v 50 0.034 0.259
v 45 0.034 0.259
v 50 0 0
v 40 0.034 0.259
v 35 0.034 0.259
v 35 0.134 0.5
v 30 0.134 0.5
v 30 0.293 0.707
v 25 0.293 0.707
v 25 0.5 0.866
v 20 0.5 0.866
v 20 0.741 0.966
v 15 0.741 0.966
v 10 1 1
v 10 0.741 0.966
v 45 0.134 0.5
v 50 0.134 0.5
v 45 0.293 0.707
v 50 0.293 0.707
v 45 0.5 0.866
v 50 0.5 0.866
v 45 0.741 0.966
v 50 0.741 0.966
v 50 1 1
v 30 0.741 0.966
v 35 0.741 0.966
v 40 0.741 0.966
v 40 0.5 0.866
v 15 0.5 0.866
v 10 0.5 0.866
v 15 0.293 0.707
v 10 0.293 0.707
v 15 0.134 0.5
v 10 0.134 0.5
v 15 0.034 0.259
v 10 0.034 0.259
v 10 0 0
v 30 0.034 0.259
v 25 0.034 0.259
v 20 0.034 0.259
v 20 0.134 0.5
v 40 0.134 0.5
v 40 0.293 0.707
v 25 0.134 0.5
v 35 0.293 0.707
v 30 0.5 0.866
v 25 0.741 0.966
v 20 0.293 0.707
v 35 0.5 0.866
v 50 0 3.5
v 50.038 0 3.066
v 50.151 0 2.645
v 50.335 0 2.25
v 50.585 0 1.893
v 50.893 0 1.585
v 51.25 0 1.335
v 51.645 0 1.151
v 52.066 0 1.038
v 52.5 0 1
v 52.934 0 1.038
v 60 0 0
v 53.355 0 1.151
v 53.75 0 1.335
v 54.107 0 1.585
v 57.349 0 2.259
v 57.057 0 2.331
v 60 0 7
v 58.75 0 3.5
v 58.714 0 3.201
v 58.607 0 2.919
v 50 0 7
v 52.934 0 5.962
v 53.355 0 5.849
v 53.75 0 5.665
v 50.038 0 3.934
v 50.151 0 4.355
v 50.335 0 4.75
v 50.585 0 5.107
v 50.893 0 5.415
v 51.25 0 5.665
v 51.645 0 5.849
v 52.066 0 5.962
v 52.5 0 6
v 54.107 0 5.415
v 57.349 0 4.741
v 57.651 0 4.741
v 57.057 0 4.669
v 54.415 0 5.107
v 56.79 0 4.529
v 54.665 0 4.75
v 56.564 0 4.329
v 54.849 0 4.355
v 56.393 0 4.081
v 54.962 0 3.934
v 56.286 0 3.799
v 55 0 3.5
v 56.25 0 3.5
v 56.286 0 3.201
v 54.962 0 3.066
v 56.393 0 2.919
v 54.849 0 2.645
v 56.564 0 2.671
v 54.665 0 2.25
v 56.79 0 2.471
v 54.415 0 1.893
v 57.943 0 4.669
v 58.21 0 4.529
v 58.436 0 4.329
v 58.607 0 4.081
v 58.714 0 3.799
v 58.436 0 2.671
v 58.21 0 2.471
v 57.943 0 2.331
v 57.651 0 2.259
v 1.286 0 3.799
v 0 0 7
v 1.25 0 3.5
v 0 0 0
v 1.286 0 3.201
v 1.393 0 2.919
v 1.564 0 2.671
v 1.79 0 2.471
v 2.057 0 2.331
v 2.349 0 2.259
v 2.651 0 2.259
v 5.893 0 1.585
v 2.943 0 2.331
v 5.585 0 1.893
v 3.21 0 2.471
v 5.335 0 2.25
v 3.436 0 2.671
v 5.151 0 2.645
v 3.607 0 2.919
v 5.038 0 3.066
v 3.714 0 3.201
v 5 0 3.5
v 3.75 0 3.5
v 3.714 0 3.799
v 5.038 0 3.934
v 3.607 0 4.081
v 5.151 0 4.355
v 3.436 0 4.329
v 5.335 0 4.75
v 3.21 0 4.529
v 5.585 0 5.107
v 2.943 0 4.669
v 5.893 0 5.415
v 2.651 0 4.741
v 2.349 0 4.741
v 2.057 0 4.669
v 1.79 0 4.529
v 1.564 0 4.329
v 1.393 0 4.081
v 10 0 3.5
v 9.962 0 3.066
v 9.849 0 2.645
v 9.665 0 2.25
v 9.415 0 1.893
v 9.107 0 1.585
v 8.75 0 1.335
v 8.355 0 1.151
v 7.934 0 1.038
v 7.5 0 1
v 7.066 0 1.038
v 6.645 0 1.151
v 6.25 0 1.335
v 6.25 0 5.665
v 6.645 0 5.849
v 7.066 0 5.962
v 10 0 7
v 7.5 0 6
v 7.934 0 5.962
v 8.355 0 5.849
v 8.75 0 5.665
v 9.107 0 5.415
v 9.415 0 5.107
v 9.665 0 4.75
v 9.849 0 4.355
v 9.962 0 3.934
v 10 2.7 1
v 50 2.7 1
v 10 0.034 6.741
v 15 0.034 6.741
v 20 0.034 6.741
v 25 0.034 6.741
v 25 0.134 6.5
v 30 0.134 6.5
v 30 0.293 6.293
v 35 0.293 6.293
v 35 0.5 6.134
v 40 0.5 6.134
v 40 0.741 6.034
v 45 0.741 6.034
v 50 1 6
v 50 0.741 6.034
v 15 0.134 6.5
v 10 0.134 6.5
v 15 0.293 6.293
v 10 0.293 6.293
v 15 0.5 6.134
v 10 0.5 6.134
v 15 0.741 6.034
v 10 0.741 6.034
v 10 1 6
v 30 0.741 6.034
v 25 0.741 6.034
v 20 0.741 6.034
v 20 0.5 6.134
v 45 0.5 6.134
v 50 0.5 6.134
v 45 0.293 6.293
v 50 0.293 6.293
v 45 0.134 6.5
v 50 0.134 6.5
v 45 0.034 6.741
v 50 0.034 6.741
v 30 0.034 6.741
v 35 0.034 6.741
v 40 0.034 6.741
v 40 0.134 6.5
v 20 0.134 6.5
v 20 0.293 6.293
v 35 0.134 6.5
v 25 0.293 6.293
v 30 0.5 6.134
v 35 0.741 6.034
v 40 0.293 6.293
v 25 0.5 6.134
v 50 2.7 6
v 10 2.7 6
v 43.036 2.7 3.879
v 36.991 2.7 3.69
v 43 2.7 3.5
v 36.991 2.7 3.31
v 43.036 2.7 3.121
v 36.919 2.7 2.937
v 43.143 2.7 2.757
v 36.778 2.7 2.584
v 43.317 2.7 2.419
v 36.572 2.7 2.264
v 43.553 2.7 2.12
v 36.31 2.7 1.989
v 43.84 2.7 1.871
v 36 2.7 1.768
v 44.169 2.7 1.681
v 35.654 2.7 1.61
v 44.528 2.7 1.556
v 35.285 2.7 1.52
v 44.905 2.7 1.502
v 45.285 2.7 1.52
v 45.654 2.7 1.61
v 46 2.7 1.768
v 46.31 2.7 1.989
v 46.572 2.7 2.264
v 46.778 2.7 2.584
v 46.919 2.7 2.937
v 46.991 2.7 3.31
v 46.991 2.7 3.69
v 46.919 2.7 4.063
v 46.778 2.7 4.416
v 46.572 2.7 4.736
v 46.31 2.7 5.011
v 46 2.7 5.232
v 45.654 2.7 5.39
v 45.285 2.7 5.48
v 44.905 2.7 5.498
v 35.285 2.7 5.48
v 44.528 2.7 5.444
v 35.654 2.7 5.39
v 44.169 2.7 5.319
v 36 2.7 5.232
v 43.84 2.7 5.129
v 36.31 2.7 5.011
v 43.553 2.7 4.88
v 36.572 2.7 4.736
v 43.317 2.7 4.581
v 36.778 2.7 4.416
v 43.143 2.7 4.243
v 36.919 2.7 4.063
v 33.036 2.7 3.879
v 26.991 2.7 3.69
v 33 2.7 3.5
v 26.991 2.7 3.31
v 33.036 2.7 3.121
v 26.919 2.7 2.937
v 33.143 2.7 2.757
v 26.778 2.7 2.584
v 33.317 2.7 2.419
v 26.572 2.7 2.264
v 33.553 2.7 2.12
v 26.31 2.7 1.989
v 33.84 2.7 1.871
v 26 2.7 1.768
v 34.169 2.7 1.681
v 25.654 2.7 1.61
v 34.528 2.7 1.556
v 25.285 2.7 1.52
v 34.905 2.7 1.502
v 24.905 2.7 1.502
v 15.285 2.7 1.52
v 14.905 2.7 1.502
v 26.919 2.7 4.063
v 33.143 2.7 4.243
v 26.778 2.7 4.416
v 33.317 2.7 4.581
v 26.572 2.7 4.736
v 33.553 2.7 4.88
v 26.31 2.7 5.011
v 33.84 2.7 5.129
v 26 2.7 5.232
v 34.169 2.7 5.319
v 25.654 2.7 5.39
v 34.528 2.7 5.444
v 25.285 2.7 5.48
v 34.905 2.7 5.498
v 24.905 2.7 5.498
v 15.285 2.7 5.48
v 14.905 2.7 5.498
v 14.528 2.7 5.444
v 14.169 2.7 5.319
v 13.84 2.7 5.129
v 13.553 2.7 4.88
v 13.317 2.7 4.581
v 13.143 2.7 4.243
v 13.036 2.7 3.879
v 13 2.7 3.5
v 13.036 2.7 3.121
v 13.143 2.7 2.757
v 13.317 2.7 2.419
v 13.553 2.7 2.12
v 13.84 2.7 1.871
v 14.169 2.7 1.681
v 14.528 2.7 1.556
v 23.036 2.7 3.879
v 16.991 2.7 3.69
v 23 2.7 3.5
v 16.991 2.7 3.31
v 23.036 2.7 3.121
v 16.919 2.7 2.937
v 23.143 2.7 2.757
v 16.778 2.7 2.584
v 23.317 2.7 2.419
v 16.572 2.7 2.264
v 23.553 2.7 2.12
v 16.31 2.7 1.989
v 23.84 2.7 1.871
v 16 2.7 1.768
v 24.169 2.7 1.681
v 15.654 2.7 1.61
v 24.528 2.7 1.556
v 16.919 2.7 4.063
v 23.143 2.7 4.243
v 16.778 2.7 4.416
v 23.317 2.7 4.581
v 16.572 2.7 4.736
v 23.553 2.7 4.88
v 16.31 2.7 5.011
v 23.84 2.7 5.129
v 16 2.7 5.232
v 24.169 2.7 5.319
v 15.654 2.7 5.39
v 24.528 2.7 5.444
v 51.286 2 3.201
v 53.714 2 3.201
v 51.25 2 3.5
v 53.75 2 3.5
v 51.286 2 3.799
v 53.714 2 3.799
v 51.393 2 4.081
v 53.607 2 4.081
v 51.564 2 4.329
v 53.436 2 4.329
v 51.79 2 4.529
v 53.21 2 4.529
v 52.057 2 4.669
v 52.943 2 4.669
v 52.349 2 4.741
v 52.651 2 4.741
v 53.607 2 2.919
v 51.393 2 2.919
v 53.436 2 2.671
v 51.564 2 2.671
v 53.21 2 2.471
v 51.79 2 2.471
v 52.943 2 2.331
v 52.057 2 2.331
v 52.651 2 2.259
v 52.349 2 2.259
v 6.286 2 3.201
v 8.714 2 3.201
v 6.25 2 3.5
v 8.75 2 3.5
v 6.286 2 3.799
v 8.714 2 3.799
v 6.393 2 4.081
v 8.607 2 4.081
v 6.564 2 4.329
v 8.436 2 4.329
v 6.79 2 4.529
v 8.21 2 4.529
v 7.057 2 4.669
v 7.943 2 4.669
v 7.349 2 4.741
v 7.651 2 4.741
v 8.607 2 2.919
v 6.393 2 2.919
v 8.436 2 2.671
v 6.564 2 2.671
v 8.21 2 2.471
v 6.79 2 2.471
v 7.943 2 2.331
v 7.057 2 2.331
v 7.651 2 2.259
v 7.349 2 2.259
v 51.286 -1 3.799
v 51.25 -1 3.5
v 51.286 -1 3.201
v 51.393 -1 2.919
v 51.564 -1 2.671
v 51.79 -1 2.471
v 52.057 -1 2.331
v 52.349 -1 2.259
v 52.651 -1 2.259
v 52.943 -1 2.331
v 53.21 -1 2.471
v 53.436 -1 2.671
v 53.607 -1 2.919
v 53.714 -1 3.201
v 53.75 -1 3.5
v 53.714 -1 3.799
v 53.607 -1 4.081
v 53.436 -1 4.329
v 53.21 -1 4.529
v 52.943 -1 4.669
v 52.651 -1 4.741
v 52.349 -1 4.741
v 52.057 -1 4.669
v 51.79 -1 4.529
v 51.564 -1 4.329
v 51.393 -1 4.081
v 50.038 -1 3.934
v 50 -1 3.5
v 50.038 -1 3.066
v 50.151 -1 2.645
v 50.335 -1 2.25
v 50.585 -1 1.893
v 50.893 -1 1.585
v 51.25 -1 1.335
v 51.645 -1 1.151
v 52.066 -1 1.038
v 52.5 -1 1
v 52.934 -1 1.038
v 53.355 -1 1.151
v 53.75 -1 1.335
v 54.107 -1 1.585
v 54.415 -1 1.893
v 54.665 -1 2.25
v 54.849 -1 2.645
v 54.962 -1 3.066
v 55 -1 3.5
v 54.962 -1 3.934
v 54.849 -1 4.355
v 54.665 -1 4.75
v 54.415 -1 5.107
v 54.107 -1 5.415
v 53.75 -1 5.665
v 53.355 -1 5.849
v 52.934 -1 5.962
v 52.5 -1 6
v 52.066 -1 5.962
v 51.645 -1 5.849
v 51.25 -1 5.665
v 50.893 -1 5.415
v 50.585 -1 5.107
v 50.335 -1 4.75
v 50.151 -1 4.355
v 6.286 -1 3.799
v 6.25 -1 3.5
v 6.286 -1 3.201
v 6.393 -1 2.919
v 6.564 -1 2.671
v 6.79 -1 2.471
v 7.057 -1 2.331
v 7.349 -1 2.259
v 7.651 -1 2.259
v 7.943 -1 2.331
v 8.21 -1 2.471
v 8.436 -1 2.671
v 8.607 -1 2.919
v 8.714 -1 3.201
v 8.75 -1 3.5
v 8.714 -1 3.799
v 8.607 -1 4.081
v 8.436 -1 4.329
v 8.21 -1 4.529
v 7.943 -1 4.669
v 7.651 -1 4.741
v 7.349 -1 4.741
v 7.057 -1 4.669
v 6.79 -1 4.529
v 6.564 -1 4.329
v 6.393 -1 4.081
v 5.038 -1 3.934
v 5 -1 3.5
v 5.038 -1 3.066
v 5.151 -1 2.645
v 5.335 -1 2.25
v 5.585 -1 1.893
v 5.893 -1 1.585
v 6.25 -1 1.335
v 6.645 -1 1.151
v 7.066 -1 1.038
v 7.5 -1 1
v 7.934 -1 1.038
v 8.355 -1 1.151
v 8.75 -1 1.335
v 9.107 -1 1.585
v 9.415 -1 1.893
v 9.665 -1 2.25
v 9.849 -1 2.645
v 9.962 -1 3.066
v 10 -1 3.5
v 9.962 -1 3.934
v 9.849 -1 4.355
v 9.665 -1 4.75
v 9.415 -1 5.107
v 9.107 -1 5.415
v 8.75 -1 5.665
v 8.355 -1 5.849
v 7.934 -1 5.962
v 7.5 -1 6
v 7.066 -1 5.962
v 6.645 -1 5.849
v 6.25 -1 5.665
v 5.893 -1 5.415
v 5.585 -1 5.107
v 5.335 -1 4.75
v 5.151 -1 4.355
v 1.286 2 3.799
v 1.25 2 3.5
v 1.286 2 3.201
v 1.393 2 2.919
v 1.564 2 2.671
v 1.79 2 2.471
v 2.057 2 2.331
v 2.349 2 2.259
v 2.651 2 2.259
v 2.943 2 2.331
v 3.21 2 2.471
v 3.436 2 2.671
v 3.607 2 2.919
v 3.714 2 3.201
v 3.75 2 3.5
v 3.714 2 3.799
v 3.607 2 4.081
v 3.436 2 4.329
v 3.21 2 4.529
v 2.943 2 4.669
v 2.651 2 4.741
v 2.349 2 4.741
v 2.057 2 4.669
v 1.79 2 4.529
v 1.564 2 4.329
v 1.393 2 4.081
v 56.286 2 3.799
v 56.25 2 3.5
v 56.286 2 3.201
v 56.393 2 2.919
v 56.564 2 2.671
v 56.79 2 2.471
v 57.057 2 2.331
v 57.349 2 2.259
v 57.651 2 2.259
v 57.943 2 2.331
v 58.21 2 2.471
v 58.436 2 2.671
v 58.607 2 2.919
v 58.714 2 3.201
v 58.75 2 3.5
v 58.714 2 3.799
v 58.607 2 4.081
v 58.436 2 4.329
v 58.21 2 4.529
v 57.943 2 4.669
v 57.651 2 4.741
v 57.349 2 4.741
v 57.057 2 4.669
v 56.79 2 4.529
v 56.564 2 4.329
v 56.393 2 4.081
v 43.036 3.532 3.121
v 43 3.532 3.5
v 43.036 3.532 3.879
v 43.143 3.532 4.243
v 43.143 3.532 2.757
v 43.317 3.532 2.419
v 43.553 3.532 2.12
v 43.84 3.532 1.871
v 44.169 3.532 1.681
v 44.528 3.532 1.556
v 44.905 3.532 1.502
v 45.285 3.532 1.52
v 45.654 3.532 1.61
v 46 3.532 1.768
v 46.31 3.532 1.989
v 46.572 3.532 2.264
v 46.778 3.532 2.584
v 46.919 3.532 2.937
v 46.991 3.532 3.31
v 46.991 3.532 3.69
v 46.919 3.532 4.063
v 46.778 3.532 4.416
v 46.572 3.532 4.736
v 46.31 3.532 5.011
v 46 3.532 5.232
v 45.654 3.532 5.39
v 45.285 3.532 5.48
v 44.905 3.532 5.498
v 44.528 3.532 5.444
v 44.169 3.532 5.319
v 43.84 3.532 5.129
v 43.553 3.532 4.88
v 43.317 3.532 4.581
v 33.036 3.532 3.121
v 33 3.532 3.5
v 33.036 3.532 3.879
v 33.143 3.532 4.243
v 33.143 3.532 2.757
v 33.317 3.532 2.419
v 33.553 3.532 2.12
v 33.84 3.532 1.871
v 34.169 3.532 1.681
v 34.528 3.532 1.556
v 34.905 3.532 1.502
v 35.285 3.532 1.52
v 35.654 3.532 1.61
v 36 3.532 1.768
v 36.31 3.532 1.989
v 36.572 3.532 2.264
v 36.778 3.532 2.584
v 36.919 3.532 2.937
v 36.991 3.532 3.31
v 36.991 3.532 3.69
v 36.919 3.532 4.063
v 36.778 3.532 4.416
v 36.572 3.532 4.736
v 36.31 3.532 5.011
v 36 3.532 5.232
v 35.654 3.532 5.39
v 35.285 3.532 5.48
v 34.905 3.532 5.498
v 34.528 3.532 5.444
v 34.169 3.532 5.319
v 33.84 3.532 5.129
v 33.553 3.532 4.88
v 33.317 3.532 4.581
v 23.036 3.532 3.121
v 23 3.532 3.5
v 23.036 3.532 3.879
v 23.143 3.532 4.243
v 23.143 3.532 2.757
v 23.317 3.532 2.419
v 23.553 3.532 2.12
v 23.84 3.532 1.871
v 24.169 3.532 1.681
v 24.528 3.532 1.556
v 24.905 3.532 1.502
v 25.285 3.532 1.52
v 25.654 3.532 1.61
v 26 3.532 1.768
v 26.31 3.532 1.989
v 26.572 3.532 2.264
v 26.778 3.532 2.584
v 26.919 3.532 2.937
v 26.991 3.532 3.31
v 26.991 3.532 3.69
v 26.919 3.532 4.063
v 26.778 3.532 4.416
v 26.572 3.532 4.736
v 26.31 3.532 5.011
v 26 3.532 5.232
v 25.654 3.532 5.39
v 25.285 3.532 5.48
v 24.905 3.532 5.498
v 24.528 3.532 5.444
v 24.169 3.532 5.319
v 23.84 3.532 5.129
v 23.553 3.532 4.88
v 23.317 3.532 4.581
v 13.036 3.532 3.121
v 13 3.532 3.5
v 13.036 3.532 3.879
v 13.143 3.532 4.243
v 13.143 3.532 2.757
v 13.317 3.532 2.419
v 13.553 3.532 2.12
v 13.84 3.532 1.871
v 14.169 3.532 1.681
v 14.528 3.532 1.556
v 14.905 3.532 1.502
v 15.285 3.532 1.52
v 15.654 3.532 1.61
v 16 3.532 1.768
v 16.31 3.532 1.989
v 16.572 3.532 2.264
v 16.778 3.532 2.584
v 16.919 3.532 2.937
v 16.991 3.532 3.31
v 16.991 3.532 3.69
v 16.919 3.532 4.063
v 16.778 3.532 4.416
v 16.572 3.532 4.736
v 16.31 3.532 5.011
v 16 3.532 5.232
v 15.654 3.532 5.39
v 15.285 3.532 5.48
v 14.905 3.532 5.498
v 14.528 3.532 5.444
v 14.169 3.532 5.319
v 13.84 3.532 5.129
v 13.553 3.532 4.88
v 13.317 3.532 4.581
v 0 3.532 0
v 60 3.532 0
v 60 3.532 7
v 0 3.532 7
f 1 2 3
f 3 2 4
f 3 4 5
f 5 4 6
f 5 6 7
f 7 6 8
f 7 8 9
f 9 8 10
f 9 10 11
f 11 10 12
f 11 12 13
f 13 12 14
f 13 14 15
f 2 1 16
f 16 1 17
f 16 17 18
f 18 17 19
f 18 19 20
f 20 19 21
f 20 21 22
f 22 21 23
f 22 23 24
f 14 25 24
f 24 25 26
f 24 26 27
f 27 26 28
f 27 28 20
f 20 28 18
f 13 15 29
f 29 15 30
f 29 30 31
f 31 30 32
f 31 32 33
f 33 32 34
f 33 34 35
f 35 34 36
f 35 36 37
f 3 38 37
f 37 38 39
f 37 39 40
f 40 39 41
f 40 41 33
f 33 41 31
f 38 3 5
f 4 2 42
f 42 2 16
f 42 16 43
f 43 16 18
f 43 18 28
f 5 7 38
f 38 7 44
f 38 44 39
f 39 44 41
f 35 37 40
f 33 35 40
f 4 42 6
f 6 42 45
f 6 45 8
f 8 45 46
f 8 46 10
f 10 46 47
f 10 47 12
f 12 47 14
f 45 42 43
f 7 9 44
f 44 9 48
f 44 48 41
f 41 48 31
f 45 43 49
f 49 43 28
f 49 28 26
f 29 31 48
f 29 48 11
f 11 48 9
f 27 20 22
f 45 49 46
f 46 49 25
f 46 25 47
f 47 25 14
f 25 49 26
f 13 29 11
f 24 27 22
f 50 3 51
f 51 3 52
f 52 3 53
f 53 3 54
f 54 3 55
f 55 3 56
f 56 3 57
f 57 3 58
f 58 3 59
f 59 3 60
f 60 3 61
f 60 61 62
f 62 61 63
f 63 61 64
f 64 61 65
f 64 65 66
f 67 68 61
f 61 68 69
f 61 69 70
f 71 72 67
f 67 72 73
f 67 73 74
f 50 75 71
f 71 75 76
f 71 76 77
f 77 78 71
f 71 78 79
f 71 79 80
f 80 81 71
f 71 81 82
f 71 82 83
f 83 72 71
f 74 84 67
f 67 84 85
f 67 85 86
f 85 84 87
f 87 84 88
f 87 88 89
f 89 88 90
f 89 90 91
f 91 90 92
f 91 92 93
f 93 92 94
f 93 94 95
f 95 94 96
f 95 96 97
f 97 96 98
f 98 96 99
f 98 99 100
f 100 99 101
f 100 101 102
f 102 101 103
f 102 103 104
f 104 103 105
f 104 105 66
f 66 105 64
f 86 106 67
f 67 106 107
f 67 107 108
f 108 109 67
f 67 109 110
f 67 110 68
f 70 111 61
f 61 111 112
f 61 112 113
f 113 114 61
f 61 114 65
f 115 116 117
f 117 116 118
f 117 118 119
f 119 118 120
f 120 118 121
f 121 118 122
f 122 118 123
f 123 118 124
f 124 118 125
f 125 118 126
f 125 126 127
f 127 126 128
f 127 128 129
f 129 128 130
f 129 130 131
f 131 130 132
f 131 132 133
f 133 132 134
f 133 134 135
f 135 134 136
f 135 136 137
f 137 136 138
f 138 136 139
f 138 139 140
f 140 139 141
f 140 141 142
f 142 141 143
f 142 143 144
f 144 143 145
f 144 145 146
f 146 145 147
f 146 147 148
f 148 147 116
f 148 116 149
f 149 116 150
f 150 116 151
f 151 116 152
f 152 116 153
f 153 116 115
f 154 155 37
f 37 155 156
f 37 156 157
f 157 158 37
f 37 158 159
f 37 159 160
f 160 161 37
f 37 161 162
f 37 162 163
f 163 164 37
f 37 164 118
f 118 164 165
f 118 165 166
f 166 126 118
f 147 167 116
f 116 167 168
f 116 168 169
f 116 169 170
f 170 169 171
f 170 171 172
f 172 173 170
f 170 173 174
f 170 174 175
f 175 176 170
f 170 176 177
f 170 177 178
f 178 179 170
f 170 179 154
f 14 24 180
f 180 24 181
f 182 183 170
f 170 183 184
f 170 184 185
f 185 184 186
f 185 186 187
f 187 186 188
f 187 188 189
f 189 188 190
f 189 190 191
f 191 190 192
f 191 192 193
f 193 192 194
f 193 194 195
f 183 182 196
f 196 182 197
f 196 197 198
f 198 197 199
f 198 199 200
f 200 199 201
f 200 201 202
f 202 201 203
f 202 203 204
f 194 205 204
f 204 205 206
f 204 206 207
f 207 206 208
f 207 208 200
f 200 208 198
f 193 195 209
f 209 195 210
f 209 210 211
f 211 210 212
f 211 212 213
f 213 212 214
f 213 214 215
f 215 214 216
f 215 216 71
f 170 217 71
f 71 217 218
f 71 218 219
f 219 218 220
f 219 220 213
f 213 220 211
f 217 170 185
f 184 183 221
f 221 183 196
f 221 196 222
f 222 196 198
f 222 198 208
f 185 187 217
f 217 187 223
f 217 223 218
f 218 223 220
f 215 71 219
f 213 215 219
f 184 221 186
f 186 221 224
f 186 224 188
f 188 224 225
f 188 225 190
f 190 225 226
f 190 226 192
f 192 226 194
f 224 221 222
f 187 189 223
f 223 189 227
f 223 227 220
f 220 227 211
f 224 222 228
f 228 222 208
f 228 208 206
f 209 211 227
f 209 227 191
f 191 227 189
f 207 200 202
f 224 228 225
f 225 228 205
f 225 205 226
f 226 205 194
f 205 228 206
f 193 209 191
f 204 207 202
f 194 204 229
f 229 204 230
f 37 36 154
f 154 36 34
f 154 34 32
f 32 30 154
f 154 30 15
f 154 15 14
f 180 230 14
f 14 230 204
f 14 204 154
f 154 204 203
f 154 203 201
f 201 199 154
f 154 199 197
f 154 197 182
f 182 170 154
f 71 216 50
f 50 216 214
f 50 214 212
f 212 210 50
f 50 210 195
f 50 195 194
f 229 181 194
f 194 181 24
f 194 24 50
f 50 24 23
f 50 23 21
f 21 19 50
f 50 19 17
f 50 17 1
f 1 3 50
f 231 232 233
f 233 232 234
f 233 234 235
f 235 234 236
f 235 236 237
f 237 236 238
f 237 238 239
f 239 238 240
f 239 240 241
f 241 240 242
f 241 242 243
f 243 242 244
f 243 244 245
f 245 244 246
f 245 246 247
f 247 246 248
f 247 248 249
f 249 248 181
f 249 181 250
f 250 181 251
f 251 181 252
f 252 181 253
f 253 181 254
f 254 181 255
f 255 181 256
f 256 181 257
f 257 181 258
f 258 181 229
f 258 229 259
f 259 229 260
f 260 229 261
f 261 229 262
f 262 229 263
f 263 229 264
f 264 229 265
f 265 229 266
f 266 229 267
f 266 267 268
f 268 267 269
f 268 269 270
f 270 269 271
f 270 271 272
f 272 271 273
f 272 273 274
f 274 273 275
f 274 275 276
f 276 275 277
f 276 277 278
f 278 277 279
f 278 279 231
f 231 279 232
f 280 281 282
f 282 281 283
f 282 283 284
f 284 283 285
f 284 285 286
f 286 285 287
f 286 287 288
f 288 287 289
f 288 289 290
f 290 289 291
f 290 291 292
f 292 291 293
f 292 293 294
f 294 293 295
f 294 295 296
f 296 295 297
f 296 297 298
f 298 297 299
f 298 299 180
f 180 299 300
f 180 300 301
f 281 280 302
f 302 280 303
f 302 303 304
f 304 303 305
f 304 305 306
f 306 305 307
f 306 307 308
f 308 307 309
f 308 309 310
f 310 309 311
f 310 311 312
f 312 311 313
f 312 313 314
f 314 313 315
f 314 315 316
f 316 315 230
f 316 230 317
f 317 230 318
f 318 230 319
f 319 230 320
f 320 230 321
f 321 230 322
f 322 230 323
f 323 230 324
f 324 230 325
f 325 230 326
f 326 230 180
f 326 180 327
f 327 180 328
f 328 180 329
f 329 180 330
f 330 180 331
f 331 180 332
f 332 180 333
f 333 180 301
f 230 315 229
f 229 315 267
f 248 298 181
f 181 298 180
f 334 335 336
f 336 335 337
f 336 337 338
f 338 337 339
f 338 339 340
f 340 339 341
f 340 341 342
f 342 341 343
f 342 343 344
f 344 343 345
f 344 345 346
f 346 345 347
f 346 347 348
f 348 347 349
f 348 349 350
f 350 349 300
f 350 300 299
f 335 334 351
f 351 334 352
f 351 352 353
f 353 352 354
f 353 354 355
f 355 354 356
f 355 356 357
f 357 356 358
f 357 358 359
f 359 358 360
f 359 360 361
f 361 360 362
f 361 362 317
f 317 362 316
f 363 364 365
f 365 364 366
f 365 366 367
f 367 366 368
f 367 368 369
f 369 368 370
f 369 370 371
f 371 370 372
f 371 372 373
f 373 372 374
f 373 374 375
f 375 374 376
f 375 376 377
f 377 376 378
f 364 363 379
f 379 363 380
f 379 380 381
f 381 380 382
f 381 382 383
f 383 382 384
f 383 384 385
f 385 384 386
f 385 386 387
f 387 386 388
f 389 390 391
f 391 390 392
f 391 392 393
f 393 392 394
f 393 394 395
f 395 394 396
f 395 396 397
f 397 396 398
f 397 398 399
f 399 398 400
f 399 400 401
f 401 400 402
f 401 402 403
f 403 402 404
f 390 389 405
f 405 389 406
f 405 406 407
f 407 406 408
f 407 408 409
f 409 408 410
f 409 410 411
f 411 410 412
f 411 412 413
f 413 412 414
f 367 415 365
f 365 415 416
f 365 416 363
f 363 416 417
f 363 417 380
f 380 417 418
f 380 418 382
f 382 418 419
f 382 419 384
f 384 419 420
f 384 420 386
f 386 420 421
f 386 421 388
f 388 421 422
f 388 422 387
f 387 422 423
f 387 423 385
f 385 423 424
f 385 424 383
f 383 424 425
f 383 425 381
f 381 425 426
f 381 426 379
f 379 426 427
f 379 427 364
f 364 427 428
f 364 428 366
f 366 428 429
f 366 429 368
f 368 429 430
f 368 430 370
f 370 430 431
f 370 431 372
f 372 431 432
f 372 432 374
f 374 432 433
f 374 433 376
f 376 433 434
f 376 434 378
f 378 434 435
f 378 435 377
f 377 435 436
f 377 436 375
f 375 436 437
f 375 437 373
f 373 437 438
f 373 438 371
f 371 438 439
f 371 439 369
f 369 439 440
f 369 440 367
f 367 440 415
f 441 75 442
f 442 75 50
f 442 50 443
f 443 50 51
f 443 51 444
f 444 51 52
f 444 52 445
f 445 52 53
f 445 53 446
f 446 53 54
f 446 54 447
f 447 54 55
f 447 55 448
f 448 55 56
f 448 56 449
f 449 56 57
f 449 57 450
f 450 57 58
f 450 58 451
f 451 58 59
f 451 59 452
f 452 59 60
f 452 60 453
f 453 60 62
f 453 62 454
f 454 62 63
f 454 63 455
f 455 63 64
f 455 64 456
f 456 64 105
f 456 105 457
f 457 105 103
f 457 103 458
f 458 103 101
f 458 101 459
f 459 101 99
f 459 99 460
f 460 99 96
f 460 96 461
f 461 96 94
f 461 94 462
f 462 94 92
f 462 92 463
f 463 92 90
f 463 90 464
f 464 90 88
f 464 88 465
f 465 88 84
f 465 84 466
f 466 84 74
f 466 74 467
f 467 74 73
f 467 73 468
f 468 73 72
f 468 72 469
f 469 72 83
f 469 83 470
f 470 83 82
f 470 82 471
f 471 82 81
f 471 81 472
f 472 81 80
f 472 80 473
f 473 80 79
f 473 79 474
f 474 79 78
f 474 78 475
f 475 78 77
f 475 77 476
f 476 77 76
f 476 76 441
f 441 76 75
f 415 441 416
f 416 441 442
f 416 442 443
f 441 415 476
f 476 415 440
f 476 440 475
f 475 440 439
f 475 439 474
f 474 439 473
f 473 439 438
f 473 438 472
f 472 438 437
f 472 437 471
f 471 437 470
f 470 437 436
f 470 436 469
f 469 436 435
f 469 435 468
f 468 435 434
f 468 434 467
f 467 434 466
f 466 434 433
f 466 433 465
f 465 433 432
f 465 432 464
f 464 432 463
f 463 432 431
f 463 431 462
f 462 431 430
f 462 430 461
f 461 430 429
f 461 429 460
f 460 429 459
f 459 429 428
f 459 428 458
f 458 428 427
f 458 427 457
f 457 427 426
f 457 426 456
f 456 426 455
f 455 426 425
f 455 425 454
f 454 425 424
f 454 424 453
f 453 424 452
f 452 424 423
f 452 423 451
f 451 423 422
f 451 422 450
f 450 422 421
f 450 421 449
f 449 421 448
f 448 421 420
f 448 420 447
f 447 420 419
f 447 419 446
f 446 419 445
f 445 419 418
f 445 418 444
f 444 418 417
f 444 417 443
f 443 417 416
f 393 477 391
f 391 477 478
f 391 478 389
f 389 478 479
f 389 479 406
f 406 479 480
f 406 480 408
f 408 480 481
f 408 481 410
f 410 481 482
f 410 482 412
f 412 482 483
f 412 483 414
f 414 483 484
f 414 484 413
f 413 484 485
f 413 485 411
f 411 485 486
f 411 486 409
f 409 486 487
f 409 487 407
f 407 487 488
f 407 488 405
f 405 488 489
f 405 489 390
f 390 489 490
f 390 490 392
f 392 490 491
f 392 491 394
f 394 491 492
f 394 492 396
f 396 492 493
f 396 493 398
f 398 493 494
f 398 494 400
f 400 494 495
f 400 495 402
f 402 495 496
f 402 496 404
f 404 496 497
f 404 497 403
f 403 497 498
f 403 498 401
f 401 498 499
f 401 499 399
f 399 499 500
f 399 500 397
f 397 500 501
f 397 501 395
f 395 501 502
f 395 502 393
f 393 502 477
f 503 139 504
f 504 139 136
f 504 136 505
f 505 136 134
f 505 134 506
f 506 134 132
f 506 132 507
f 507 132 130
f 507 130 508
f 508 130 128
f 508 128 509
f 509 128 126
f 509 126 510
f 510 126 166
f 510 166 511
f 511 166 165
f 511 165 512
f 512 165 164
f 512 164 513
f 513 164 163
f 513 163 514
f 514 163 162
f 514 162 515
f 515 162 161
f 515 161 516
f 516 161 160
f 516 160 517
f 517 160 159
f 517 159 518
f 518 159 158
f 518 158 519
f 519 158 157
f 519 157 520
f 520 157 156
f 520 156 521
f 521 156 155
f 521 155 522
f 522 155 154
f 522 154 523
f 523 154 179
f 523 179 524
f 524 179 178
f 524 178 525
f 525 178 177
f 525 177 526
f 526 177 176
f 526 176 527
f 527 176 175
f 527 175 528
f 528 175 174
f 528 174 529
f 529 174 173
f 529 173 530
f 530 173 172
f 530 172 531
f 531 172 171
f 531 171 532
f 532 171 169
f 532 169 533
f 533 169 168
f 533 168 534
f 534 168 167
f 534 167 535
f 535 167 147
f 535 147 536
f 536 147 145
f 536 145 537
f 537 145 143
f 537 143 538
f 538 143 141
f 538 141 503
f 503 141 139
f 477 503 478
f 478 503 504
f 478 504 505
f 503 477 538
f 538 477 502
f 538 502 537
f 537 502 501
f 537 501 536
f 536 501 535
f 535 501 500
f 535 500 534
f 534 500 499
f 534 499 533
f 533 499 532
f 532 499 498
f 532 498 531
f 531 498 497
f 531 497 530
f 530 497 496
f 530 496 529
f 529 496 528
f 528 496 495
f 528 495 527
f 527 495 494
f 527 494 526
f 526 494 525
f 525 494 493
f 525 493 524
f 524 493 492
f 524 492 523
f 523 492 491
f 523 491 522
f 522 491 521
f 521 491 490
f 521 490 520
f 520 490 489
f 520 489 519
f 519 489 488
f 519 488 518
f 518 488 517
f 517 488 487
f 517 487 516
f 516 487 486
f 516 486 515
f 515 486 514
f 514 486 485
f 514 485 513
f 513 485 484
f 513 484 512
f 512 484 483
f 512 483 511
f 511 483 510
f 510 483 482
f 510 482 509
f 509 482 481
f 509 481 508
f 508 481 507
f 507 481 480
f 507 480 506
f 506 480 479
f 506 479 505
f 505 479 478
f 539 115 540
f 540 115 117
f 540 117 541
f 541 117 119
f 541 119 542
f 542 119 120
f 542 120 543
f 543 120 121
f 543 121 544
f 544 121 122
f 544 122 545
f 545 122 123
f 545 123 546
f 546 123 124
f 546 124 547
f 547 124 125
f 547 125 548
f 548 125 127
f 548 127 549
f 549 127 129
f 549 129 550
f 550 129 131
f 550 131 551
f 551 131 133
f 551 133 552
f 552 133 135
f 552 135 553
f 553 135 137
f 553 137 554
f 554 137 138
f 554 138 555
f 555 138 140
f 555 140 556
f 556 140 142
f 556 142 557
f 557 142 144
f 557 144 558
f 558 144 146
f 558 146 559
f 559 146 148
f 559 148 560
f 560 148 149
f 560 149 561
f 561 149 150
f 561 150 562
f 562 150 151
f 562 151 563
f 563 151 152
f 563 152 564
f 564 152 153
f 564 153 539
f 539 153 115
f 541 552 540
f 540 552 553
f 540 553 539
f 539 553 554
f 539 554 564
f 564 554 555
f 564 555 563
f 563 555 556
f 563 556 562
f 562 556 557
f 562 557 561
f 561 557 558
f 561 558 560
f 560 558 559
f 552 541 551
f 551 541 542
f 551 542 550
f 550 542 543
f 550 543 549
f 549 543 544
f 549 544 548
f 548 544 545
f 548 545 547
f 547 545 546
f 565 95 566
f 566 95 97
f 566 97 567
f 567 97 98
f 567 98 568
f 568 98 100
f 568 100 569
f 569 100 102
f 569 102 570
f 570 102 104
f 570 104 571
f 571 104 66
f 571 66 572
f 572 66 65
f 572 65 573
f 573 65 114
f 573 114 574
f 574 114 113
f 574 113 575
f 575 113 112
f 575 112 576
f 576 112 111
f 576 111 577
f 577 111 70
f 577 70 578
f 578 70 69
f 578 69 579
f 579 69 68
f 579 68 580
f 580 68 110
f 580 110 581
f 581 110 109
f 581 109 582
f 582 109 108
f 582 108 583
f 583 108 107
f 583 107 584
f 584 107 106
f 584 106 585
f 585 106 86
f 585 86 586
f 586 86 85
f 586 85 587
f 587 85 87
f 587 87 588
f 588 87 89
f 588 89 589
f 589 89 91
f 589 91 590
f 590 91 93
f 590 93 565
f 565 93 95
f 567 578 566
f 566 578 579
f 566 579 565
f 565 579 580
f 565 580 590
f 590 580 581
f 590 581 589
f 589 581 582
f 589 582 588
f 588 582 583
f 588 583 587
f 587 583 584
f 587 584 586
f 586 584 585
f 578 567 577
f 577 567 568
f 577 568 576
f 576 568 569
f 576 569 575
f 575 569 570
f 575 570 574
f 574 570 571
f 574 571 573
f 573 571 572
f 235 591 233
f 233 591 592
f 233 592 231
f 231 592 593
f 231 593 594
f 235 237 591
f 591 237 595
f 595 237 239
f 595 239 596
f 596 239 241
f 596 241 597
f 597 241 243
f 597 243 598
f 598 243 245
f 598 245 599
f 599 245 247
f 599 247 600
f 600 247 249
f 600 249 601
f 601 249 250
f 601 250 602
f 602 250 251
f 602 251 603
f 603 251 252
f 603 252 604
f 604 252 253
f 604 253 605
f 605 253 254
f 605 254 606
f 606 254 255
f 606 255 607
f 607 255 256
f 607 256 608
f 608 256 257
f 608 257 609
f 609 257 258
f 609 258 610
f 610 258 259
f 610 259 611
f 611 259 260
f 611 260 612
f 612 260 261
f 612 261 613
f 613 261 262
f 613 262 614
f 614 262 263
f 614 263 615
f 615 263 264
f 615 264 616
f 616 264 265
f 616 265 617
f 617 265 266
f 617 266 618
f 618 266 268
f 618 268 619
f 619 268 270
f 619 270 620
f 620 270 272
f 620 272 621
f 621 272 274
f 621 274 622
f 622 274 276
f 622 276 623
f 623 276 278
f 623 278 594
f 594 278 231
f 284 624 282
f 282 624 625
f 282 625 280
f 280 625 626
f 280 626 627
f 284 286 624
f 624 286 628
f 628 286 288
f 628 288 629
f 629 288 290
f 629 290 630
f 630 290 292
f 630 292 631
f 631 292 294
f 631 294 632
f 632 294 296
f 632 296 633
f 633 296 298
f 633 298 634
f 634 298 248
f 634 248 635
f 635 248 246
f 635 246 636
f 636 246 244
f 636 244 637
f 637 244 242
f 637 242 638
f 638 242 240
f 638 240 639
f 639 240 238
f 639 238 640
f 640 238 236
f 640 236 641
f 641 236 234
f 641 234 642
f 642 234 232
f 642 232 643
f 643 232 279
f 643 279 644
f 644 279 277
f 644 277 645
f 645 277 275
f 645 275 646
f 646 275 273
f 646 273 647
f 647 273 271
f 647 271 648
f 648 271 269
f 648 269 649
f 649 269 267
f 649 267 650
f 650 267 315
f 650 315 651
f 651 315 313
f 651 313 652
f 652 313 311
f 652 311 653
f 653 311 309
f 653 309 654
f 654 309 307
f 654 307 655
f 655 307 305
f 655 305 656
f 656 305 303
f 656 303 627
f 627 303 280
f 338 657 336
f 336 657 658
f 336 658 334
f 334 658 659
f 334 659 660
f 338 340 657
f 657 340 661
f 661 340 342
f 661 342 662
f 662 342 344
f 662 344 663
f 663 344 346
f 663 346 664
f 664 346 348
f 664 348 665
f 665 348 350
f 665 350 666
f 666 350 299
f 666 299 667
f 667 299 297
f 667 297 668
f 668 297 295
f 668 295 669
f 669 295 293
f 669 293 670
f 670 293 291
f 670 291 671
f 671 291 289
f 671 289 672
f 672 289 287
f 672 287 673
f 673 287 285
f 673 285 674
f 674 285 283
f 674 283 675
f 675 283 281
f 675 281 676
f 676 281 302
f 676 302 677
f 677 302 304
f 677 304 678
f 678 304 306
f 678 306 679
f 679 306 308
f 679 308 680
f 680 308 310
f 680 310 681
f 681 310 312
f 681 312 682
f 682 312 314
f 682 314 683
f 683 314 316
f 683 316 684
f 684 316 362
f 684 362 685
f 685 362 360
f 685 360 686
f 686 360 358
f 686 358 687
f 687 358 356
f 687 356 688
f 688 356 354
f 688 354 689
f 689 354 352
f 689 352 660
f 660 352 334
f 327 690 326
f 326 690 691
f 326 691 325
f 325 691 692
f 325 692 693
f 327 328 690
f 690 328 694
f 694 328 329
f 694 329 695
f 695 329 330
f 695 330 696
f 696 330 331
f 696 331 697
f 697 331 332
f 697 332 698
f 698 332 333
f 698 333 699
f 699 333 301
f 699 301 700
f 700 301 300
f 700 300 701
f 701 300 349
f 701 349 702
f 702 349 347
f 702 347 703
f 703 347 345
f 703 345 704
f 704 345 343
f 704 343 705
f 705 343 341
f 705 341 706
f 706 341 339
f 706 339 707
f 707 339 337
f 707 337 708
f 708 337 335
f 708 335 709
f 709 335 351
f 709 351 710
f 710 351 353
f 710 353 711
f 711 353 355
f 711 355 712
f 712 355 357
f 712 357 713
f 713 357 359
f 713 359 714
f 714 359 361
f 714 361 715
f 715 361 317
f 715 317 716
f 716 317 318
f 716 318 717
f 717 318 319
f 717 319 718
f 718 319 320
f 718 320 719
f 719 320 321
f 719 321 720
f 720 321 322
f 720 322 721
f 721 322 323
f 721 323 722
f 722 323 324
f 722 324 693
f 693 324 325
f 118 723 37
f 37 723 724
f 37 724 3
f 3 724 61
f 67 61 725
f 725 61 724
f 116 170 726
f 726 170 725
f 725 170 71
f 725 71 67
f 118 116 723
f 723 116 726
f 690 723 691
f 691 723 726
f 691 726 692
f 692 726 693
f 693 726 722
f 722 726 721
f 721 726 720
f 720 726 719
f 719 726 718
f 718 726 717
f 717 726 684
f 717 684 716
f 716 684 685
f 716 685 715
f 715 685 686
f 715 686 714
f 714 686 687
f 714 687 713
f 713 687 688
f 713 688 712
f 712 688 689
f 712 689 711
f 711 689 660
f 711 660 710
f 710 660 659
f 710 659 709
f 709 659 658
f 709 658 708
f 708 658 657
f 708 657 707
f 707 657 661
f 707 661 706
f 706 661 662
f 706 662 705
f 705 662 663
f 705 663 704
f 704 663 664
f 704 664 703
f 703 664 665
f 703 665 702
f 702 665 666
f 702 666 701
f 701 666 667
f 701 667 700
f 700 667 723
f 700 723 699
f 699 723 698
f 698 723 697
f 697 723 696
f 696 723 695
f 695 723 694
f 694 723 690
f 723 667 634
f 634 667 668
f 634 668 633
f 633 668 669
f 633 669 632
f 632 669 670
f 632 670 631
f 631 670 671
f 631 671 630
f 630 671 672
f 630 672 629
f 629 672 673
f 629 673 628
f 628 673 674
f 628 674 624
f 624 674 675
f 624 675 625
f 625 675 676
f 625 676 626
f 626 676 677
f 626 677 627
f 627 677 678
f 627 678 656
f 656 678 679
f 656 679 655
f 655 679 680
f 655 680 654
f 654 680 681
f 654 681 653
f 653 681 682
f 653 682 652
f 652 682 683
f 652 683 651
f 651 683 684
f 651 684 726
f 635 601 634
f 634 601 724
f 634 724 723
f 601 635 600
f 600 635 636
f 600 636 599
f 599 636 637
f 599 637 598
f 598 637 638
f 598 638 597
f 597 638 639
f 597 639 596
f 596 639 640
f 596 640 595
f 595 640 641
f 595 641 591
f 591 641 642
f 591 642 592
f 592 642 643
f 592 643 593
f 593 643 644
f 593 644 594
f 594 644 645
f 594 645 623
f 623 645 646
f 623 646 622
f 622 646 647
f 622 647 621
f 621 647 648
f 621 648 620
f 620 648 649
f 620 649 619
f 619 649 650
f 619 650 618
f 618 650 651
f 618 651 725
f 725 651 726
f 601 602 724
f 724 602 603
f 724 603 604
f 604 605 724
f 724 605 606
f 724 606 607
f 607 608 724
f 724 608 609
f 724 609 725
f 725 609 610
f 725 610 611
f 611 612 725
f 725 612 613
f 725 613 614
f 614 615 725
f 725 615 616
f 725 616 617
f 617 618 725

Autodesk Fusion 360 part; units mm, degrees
sketch "Sketch1" plane through (0, 0, 0) normal (0, 1, 0) x (1, 0, 0)
  line L0 (0, 0) -> (60, 0)
  line L1 (60, 0) -> (60, -7)
  line L2 (60, -7) -> (0, -7)
  line L3 (0, -7) -> (0, 0)
  line L4 (0, -7) -> (2.5, -7)
  line L5 (2.5, -7) -> (2.5, -3.5)
  line L6 (2.5, -3.5) -> (0, -3.5)
  line L7 (0, -3.5) -> (0, -7)
  line L8 (60, -7) -> (57.5, -7)
  line L9 (57.5, -7) -> (57.5, -3.5)
  line L10 (57.5, -3.5) -> (60, -3.5)
  line L11 (60, -3.5) -> (60, -7)
  circle A0 centre (2.5, -3.5) radius 1.25
  circle A1 centre (57.5, -3.5) radius 1.25
  line L12 (0, -7) -> (30, -7)
  line L13 (0, -7) -> (18, -7)
  line L14 (60, -7) -> (42, -7)
  line L15 (2.5, -3.5) -> (7.5, -3.5)
  line L16 (57.5, -3.5) -> (52.5, -3.5)
  circle A2 centre (7.5, -3.5) radius 1.25
  circle A3 centre (52.5, -3.5) radius 1.25
  circle A4 centre (52.5, -3.5) radius 2.5
  circle A5 centre (7.5, -3.5) radius 2.5
  line L17 (7.5, -3.5) -> (15, -3.5)
  line L18 (52.5, -3.5) -> (45, -3.5)
  line L19 (15, -3.5) -> (25, -3.5)
  line L20 (25, -3.5) -> (35, -3.5)
  line L21 (35, -3.5) -> (45, -3.5)
  circle A6 centre (15, -3.5) radius 2
  circle A7 centre (25, -3.5) radius 2
  circle A8 centre (35, -3.5) radius 2
  circle A9 centre (45, -3.5) radius 2
  dimension "d1" = 60
  dimension "d2" = 7
  dimension "d3" = 2.5
  dimension "d4" = 3.5
  dimension "d5" = 2.5
  dimension "d6" = 3.5
  dimension "d7" = 2.5
  dimension "d8" = 2.5
  dimension "d79" = 5
  dimension "d80" = 5
  dimension "d81" = 2.5
  dimension "d82" = 2.5
  dimension "d83" = 5
  dimension "d84" = 5
  dimension "d85" = 7.5
  dimension "d86" = 7.5
  dimension "d87" = 10
  dimension "d88" = 10
  dimension "d89" = 10
  dimension "d90" = 4
  dimension "d91" = 4
  dimension "d92" = 4
  dimension "d93" = 4
extrude "Extrude1" add sketch "Sketch1" along normal blind 3.532 contours L0 L1 L3 L6 L10 A0 A1 L15 L16 A4 A5 L17 L18 L19 L20 L21 A6 A7 A8 A9 | L2 L3 L4 L5 L6 L7 A0 L12 L13 | L1 L2 L8 L9 L10 L11 A1 L14 | L6 A0 L15 | L5 L6 A0 | L9 L10 A1 | L10 A1 L16 | L2 L5 L9 A0 A1 L12 L13 L14 L15 L16 A4 A5 L17 L18 L19 L20 L21 A6 A7 A8 A9 | L5 A0 L15 | L9 A1 L16 | L15 A2 A5 L17 | L15 A2 A5 L17 | L16 A3 A4 L18 | L16 A3 A4 L18 | L15 A2 L17 | L15 A2 L17 | L16 A3 L18 | L16 A3 L18
extrude "Extrude3" cut sketch "Sketch1" along normal blind 2 contours L6 A0 L15 | L5 L6 A0 | L9 L10 A1 | L10 A1 L16 | L5 A0 L15 | L9 A1 L16
extrude "Extrude4" add sketch "Sketch1" against normal blind 1 contours L15 A2 A5 L17 | L15 A2 A5 L17 | L16 A3 A4 L18 | L16 A3 A4 L18
extrude "Extrude12" cut 2 faces at (52.6522, 0, 3.8879) (7.2402, 0, 3.8258) along direction (0, 1, 0) blind 2
sketch "Sketch5" plane through (0, 0, 0) normal (0, -1, 0) x (1, 0, 0)
  circle A0 centre (7.5, 3.5) radius 2.5
  circle A1 centre (2.5, 3.5) radius 1.25
  circle A2 centre (57.5, 3.5) radius 1.25
  circle A3 centre (15, 3.5) radius 2
  circle A4 centre (45, 3.5) radius 2
  circle A5 centre (25, 3.5) radius 2
  circle A6 centre (35, 3.5) radius 2
  line L0 (0, 7) -> (0, 0)
  line L1 (0, 0) -> (60, 0)
  line L2 (60, 0) -> (60, 7)
  line L3 (60, 7) -> (0, 7)
  circle A7 centre (52.5, 3.5) radius 2.5
  line L4 (10, 3.5) -> (10, 7)
  line L5 (10, 7) -> (50, 7)
  line L6 (50, 7) -> (50, 0)
  line L7 (50, 0) -> (10, 0)
  line L8 (10, 0) -> (10, 7)
  line L9 (10, 7) -> (50, 7)
  line L10 (50, 7) -> (50, 6)
  line L11 (50, 6) -> (10, 6)
  line L12 (10, 6) -> (10, 7)
  line L13 (10, 0) -> (50, 0)
  line L14 (50, 0) -> (50, 1)
  line L15 (50, 1) -> (10, 1)
  line L16 (10, 1) -> (10, 0)
  dimension "d94" = 1
extrude "Extrude11" cut sketch "Sketch5" against normal blind 2.7 contours L4 L6 L8 L11 L15
fillet "Fillet4" radius 1 2 edges at (30, 0, 6) (30, 0, 1)
